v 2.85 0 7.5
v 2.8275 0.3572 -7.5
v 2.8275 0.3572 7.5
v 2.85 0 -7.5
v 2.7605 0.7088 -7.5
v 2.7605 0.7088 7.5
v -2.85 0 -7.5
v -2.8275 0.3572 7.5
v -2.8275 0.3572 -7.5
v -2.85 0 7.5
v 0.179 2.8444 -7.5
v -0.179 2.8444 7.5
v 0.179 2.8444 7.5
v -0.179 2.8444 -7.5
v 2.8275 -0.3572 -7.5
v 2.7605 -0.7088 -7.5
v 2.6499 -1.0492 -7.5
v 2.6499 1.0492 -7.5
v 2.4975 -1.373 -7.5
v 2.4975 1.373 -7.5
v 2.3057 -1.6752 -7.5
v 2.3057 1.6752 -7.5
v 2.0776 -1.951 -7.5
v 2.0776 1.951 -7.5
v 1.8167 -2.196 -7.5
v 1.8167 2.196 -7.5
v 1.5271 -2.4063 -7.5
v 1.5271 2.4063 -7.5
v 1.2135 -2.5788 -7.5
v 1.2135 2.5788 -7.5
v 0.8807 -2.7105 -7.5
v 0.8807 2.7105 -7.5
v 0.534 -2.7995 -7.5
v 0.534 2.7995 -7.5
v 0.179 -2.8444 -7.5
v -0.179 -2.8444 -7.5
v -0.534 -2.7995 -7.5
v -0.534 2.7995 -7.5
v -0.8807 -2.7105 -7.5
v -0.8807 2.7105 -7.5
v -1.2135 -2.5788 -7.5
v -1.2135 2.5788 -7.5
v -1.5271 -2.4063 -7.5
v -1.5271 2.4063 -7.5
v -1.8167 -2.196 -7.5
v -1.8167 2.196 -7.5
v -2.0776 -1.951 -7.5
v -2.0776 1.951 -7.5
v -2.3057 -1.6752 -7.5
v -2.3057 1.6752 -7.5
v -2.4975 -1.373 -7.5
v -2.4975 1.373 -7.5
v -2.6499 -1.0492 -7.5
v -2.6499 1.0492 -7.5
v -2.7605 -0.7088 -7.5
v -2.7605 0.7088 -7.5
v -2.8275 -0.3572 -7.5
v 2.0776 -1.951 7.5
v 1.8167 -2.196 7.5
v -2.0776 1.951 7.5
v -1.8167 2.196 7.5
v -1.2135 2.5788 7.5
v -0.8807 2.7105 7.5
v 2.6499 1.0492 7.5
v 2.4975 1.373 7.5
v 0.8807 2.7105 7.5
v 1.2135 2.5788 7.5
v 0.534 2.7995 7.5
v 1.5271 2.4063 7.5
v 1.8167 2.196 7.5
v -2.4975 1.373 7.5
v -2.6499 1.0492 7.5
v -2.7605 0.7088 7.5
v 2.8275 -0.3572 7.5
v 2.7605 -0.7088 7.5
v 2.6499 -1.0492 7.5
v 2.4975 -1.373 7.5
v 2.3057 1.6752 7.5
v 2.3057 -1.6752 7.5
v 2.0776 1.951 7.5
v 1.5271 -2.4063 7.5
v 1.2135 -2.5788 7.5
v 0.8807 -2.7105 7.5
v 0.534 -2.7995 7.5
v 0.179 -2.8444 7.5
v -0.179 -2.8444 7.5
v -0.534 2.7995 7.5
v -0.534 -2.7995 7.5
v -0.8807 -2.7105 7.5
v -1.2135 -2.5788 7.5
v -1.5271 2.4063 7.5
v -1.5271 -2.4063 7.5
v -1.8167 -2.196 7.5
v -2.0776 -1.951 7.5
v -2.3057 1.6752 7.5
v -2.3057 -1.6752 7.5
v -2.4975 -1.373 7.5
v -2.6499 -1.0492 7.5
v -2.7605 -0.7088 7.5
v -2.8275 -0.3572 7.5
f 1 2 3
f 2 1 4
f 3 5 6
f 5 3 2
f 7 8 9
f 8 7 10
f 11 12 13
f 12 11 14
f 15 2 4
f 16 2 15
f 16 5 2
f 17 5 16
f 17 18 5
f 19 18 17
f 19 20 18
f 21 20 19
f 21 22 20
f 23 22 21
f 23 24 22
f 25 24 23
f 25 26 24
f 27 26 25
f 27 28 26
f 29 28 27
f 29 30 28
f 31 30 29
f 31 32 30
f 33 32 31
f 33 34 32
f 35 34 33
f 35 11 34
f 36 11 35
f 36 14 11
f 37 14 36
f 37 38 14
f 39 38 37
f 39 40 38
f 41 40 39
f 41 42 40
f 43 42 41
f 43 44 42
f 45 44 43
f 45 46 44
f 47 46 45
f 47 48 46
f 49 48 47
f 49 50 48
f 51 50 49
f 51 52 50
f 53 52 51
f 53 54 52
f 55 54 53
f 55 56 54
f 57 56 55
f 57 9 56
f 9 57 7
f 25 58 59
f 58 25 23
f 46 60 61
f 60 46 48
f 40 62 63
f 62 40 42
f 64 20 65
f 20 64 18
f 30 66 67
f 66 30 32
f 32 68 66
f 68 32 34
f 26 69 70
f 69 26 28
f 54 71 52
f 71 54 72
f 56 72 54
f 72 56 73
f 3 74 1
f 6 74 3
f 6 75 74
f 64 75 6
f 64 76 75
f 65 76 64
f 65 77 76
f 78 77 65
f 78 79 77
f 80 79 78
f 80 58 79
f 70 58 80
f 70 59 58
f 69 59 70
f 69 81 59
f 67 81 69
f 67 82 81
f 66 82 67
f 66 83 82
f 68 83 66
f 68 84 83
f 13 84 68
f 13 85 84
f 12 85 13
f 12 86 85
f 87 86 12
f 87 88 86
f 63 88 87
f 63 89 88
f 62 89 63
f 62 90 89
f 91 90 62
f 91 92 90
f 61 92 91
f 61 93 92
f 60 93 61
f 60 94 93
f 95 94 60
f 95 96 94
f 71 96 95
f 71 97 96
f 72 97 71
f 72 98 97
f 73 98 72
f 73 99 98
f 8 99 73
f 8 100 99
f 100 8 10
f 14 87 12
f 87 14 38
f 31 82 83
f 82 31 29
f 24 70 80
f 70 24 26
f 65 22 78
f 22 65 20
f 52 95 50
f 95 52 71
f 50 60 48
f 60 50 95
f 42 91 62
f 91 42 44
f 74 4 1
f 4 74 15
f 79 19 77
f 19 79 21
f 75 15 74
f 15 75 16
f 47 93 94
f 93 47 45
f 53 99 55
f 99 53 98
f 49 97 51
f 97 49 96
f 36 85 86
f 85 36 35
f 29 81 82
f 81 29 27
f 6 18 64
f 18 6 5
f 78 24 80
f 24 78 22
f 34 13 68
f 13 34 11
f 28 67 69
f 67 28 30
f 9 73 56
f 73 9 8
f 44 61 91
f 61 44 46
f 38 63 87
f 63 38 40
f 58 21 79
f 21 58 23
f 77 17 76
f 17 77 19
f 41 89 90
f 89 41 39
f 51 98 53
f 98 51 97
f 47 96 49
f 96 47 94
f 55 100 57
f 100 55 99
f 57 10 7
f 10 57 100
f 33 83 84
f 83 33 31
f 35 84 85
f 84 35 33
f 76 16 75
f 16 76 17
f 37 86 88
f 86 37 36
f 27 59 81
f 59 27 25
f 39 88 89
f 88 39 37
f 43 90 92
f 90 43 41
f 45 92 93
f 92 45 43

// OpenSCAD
$fn = 50;


difference() {
	union() {
		translate(v = [0, 0, -7.5000000000]) {
			cylinder(h = 15, r = 2.8500000000);
		}
	}
	union() {
		translate(v = [0, 0, -100.0000000000]) {
			cylinder(h = 200, r = 0);
		}
	}
}
